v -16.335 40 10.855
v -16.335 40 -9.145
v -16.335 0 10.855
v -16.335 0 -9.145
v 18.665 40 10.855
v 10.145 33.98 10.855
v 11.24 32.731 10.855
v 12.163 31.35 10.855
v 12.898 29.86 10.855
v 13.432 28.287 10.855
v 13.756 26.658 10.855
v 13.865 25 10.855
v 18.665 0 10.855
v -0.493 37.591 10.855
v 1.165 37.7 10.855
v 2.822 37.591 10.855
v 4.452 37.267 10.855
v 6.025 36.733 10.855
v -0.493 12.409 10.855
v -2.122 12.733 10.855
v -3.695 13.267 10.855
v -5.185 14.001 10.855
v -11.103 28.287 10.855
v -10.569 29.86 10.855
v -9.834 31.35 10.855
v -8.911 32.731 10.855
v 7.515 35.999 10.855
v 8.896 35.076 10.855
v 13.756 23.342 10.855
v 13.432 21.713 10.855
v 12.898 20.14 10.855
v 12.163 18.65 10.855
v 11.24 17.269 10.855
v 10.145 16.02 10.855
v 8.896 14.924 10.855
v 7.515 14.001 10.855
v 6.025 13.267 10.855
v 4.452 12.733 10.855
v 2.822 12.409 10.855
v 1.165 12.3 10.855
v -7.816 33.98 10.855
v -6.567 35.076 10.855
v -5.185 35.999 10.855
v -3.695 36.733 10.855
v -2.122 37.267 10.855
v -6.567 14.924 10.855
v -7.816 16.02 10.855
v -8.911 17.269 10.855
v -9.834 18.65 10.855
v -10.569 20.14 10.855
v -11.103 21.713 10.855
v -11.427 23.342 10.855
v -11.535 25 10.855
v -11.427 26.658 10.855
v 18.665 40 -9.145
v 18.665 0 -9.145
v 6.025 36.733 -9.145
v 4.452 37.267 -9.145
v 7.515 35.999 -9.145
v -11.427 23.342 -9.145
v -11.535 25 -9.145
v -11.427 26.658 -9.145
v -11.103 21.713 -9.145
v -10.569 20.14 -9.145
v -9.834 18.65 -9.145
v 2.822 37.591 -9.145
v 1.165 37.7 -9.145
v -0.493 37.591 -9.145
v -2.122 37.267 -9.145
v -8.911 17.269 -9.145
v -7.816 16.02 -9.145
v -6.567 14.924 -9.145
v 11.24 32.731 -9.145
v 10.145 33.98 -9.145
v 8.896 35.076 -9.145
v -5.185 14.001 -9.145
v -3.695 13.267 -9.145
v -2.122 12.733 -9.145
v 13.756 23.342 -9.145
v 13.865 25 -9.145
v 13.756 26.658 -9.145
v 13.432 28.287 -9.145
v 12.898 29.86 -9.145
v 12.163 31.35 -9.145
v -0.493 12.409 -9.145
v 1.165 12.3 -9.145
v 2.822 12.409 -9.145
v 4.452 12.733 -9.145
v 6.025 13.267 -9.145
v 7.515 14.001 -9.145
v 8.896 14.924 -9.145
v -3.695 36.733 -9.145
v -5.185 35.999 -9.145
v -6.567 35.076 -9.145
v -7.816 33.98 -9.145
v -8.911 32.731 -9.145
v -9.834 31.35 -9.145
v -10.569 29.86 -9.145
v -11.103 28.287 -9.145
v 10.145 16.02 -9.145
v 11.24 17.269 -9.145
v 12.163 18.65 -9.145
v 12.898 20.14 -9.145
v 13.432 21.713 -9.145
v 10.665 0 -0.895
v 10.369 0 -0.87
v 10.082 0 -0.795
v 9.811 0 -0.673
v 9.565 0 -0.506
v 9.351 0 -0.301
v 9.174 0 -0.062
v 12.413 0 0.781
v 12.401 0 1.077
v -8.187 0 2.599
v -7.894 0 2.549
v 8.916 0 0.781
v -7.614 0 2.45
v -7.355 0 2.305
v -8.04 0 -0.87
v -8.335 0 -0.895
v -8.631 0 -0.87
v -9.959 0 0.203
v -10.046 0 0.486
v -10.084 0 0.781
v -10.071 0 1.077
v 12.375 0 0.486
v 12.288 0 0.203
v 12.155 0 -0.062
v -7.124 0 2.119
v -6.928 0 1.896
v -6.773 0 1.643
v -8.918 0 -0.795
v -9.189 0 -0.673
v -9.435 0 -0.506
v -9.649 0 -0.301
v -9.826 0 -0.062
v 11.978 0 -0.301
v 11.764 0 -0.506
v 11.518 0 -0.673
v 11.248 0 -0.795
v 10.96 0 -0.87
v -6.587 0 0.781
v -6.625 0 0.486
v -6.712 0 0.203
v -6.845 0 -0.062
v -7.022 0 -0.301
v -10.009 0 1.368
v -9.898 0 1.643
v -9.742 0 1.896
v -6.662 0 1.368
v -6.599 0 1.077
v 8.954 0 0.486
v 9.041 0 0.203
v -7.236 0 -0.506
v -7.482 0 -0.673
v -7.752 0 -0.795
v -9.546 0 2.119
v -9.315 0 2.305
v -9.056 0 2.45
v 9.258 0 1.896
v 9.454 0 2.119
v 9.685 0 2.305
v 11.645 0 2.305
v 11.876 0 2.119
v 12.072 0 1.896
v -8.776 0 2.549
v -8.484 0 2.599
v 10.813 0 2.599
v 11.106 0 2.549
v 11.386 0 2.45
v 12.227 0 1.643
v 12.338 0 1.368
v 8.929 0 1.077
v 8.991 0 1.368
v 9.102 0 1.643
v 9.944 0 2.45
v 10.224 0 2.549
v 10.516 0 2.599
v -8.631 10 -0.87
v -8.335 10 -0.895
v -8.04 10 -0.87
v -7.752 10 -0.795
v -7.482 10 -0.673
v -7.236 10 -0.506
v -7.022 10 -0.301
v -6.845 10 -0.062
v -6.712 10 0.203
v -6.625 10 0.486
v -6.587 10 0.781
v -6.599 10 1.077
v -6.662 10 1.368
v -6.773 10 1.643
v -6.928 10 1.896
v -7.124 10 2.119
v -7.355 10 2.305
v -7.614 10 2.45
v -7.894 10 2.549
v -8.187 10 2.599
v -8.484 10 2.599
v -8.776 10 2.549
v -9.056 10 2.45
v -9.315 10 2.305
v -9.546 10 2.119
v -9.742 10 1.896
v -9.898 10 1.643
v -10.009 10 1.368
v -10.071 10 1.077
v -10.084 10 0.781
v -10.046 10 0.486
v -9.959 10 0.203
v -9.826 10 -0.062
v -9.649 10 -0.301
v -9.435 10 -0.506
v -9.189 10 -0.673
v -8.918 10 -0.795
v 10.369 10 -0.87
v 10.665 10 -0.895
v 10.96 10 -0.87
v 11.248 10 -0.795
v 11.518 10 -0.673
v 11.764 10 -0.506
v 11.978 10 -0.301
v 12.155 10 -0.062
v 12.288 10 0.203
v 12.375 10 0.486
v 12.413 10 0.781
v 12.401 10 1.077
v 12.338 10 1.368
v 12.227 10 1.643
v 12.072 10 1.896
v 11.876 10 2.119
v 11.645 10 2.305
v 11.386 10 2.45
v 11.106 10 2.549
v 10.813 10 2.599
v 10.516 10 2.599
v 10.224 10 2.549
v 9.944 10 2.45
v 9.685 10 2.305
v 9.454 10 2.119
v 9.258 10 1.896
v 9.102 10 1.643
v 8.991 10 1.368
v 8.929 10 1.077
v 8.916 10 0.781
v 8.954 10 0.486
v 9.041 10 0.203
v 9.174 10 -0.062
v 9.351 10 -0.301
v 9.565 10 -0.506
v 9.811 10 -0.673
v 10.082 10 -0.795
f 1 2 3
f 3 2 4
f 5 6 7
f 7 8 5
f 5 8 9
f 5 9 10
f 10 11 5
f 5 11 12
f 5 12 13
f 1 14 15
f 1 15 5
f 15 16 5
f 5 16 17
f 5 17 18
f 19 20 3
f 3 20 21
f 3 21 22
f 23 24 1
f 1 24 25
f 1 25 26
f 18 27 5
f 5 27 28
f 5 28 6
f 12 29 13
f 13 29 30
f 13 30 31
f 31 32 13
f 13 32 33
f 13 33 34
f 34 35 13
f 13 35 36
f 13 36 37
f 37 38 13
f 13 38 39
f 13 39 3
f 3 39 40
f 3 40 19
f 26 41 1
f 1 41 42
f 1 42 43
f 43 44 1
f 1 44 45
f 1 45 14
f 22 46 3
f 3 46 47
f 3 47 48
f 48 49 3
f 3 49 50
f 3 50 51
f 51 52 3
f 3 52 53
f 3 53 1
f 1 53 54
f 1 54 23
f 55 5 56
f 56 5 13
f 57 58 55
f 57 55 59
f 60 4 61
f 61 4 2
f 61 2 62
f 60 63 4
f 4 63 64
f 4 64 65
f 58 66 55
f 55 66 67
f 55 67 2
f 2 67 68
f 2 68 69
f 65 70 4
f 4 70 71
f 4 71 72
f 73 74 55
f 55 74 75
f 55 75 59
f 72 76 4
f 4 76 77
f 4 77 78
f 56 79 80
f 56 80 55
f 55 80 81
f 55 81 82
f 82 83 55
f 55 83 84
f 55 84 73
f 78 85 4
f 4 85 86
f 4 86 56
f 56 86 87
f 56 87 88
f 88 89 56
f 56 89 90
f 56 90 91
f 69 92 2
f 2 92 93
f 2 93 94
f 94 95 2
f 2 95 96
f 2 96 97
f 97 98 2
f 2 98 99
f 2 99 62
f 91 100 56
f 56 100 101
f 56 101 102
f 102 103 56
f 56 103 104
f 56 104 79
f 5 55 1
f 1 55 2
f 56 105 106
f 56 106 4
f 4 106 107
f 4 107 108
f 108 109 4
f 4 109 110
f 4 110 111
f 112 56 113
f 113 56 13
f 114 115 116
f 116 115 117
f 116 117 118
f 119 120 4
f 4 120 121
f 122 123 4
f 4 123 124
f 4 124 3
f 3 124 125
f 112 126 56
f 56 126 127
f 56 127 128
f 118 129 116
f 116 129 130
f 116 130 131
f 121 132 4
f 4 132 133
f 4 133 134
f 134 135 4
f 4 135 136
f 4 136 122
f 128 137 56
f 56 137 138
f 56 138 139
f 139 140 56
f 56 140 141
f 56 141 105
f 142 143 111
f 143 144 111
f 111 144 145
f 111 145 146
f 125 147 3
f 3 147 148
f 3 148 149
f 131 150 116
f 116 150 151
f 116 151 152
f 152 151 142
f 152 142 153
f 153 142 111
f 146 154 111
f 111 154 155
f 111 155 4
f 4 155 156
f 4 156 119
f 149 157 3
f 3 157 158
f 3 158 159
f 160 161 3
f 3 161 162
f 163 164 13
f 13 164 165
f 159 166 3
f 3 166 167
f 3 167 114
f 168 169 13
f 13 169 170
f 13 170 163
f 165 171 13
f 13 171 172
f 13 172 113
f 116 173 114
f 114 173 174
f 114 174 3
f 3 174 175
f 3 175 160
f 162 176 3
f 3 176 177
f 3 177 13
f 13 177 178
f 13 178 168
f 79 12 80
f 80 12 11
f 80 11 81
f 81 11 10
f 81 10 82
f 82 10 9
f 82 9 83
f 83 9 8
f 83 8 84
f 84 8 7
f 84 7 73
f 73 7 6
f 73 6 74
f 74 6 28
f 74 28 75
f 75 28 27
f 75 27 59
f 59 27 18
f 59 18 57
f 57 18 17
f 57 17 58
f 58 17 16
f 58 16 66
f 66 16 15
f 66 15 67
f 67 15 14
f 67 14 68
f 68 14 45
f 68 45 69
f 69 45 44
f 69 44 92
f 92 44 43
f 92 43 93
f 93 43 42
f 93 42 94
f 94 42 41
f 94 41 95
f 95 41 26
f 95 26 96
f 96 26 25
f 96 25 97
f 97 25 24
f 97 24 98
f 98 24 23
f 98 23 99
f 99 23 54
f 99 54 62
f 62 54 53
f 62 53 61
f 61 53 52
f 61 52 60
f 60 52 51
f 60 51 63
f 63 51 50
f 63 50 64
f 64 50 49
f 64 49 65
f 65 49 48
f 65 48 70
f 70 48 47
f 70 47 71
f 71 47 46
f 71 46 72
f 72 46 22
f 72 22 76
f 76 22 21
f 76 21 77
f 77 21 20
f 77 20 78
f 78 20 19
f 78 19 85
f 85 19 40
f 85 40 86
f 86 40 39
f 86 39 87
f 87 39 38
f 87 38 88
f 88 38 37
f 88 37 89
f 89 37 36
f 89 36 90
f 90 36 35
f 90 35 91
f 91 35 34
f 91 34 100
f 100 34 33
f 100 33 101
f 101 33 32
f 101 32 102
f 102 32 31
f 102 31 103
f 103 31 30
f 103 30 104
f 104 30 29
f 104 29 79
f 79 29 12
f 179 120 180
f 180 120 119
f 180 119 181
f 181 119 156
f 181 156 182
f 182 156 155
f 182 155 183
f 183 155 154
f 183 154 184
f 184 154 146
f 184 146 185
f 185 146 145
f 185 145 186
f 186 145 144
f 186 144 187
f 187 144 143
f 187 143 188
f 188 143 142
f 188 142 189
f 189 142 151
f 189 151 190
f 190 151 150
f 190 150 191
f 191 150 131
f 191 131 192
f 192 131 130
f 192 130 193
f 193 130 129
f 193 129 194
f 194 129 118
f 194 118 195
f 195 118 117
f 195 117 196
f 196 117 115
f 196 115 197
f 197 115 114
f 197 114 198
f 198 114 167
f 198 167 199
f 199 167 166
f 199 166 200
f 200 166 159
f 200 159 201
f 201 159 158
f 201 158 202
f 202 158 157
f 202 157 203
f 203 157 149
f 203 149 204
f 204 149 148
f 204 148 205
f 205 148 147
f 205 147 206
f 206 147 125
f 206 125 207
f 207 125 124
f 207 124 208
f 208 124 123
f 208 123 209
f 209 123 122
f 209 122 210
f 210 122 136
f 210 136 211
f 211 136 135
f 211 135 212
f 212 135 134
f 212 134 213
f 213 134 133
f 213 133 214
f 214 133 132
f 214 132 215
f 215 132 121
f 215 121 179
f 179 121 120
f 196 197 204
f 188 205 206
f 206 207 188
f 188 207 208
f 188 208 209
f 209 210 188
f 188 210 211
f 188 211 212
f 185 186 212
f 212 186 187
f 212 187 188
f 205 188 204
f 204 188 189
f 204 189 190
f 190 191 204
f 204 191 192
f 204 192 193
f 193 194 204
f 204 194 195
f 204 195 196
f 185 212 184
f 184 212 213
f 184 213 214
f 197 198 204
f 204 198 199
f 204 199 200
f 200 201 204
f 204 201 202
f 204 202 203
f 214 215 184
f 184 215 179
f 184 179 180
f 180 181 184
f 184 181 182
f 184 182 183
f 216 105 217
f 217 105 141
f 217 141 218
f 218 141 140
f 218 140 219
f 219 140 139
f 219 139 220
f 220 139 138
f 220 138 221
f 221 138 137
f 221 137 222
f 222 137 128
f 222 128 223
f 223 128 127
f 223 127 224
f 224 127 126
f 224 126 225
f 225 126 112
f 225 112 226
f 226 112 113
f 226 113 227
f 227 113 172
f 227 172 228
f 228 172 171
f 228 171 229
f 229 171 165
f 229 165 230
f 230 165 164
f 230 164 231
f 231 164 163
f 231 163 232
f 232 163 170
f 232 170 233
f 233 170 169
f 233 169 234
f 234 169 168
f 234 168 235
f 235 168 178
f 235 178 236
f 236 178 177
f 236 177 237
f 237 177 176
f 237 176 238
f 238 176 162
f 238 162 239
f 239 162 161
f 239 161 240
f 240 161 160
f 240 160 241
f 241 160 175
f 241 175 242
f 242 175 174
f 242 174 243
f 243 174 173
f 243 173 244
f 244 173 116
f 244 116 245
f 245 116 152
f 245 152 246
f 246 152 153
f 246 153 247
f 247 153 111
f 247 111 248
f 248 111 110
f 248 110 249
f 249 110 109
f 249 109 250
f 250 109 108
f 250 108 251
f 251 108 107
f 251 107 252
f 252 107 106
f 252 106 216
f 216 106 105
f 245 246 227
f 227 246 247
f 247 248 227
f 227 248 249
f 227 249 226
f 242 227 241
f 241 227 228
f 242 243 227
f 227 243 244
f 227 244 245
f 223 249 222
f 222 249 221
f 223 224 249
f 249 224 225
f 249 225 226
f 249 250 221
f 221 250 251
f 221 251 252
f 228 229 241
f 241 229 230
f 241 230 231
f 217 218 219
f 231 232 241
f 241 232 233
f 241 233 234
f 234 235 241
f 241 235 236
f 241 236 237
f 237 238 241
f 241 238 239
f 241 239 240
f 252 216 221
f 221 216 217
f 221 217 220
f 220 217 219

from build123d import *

# Parameters (mm, degrees)
SKETCH1_W           = 35
SKETCH1_H           = 20
BOSS_EXTRUDE1_DEPTH = 40
SKETCH2_R           = 12.7
CUT_EXTRUDE1_DEPTH  = 21
SKETCH3_R           = 1.75
CUT_EXTRUDE2_DEPTH  = 10


with BuildPart() as part:
    # Sketch1 → Boss-Extrude1 (new body)
    with BuildSketch(Plane(origin=(0, 0, 0), x_dir=(1, 0, 0), z_dir=(0, 1, 0))):
        with Locations((1.164675851, -0.855170824)):
            Rectangle(SKETCH1_W, SKETCH1_H)
    extrude(amount=BOSS_EXTRUDE1_DEPTH)

    # Sketch2 → Cut-Extrude1 (cut, through all)
    with BuildSketch(Plane.XY.offset(10.855170824)):
        with Locations((1.164675851, 25)):
            Circle(SKETCH2_R)
    extrude(amount=-CUT_EXTRUDE1_DEPTH, mode=Mode.SUBTRACT)

    # Sketch3 → Cut-Extrude2 (cut)
    with BuildSketch(Plane.XZ):
        with Locations((-8.335324149, 0.855170824)):
            Circle(SKETCH3_R)
        with Locations((10.664675851, 0.855170824)):
            Circle(SKETCH3_R)
    extrude(amount=-CUT_EXTRUDE2_DEPTH, mode=Mode.SUBTRACT)


solid = part.part
